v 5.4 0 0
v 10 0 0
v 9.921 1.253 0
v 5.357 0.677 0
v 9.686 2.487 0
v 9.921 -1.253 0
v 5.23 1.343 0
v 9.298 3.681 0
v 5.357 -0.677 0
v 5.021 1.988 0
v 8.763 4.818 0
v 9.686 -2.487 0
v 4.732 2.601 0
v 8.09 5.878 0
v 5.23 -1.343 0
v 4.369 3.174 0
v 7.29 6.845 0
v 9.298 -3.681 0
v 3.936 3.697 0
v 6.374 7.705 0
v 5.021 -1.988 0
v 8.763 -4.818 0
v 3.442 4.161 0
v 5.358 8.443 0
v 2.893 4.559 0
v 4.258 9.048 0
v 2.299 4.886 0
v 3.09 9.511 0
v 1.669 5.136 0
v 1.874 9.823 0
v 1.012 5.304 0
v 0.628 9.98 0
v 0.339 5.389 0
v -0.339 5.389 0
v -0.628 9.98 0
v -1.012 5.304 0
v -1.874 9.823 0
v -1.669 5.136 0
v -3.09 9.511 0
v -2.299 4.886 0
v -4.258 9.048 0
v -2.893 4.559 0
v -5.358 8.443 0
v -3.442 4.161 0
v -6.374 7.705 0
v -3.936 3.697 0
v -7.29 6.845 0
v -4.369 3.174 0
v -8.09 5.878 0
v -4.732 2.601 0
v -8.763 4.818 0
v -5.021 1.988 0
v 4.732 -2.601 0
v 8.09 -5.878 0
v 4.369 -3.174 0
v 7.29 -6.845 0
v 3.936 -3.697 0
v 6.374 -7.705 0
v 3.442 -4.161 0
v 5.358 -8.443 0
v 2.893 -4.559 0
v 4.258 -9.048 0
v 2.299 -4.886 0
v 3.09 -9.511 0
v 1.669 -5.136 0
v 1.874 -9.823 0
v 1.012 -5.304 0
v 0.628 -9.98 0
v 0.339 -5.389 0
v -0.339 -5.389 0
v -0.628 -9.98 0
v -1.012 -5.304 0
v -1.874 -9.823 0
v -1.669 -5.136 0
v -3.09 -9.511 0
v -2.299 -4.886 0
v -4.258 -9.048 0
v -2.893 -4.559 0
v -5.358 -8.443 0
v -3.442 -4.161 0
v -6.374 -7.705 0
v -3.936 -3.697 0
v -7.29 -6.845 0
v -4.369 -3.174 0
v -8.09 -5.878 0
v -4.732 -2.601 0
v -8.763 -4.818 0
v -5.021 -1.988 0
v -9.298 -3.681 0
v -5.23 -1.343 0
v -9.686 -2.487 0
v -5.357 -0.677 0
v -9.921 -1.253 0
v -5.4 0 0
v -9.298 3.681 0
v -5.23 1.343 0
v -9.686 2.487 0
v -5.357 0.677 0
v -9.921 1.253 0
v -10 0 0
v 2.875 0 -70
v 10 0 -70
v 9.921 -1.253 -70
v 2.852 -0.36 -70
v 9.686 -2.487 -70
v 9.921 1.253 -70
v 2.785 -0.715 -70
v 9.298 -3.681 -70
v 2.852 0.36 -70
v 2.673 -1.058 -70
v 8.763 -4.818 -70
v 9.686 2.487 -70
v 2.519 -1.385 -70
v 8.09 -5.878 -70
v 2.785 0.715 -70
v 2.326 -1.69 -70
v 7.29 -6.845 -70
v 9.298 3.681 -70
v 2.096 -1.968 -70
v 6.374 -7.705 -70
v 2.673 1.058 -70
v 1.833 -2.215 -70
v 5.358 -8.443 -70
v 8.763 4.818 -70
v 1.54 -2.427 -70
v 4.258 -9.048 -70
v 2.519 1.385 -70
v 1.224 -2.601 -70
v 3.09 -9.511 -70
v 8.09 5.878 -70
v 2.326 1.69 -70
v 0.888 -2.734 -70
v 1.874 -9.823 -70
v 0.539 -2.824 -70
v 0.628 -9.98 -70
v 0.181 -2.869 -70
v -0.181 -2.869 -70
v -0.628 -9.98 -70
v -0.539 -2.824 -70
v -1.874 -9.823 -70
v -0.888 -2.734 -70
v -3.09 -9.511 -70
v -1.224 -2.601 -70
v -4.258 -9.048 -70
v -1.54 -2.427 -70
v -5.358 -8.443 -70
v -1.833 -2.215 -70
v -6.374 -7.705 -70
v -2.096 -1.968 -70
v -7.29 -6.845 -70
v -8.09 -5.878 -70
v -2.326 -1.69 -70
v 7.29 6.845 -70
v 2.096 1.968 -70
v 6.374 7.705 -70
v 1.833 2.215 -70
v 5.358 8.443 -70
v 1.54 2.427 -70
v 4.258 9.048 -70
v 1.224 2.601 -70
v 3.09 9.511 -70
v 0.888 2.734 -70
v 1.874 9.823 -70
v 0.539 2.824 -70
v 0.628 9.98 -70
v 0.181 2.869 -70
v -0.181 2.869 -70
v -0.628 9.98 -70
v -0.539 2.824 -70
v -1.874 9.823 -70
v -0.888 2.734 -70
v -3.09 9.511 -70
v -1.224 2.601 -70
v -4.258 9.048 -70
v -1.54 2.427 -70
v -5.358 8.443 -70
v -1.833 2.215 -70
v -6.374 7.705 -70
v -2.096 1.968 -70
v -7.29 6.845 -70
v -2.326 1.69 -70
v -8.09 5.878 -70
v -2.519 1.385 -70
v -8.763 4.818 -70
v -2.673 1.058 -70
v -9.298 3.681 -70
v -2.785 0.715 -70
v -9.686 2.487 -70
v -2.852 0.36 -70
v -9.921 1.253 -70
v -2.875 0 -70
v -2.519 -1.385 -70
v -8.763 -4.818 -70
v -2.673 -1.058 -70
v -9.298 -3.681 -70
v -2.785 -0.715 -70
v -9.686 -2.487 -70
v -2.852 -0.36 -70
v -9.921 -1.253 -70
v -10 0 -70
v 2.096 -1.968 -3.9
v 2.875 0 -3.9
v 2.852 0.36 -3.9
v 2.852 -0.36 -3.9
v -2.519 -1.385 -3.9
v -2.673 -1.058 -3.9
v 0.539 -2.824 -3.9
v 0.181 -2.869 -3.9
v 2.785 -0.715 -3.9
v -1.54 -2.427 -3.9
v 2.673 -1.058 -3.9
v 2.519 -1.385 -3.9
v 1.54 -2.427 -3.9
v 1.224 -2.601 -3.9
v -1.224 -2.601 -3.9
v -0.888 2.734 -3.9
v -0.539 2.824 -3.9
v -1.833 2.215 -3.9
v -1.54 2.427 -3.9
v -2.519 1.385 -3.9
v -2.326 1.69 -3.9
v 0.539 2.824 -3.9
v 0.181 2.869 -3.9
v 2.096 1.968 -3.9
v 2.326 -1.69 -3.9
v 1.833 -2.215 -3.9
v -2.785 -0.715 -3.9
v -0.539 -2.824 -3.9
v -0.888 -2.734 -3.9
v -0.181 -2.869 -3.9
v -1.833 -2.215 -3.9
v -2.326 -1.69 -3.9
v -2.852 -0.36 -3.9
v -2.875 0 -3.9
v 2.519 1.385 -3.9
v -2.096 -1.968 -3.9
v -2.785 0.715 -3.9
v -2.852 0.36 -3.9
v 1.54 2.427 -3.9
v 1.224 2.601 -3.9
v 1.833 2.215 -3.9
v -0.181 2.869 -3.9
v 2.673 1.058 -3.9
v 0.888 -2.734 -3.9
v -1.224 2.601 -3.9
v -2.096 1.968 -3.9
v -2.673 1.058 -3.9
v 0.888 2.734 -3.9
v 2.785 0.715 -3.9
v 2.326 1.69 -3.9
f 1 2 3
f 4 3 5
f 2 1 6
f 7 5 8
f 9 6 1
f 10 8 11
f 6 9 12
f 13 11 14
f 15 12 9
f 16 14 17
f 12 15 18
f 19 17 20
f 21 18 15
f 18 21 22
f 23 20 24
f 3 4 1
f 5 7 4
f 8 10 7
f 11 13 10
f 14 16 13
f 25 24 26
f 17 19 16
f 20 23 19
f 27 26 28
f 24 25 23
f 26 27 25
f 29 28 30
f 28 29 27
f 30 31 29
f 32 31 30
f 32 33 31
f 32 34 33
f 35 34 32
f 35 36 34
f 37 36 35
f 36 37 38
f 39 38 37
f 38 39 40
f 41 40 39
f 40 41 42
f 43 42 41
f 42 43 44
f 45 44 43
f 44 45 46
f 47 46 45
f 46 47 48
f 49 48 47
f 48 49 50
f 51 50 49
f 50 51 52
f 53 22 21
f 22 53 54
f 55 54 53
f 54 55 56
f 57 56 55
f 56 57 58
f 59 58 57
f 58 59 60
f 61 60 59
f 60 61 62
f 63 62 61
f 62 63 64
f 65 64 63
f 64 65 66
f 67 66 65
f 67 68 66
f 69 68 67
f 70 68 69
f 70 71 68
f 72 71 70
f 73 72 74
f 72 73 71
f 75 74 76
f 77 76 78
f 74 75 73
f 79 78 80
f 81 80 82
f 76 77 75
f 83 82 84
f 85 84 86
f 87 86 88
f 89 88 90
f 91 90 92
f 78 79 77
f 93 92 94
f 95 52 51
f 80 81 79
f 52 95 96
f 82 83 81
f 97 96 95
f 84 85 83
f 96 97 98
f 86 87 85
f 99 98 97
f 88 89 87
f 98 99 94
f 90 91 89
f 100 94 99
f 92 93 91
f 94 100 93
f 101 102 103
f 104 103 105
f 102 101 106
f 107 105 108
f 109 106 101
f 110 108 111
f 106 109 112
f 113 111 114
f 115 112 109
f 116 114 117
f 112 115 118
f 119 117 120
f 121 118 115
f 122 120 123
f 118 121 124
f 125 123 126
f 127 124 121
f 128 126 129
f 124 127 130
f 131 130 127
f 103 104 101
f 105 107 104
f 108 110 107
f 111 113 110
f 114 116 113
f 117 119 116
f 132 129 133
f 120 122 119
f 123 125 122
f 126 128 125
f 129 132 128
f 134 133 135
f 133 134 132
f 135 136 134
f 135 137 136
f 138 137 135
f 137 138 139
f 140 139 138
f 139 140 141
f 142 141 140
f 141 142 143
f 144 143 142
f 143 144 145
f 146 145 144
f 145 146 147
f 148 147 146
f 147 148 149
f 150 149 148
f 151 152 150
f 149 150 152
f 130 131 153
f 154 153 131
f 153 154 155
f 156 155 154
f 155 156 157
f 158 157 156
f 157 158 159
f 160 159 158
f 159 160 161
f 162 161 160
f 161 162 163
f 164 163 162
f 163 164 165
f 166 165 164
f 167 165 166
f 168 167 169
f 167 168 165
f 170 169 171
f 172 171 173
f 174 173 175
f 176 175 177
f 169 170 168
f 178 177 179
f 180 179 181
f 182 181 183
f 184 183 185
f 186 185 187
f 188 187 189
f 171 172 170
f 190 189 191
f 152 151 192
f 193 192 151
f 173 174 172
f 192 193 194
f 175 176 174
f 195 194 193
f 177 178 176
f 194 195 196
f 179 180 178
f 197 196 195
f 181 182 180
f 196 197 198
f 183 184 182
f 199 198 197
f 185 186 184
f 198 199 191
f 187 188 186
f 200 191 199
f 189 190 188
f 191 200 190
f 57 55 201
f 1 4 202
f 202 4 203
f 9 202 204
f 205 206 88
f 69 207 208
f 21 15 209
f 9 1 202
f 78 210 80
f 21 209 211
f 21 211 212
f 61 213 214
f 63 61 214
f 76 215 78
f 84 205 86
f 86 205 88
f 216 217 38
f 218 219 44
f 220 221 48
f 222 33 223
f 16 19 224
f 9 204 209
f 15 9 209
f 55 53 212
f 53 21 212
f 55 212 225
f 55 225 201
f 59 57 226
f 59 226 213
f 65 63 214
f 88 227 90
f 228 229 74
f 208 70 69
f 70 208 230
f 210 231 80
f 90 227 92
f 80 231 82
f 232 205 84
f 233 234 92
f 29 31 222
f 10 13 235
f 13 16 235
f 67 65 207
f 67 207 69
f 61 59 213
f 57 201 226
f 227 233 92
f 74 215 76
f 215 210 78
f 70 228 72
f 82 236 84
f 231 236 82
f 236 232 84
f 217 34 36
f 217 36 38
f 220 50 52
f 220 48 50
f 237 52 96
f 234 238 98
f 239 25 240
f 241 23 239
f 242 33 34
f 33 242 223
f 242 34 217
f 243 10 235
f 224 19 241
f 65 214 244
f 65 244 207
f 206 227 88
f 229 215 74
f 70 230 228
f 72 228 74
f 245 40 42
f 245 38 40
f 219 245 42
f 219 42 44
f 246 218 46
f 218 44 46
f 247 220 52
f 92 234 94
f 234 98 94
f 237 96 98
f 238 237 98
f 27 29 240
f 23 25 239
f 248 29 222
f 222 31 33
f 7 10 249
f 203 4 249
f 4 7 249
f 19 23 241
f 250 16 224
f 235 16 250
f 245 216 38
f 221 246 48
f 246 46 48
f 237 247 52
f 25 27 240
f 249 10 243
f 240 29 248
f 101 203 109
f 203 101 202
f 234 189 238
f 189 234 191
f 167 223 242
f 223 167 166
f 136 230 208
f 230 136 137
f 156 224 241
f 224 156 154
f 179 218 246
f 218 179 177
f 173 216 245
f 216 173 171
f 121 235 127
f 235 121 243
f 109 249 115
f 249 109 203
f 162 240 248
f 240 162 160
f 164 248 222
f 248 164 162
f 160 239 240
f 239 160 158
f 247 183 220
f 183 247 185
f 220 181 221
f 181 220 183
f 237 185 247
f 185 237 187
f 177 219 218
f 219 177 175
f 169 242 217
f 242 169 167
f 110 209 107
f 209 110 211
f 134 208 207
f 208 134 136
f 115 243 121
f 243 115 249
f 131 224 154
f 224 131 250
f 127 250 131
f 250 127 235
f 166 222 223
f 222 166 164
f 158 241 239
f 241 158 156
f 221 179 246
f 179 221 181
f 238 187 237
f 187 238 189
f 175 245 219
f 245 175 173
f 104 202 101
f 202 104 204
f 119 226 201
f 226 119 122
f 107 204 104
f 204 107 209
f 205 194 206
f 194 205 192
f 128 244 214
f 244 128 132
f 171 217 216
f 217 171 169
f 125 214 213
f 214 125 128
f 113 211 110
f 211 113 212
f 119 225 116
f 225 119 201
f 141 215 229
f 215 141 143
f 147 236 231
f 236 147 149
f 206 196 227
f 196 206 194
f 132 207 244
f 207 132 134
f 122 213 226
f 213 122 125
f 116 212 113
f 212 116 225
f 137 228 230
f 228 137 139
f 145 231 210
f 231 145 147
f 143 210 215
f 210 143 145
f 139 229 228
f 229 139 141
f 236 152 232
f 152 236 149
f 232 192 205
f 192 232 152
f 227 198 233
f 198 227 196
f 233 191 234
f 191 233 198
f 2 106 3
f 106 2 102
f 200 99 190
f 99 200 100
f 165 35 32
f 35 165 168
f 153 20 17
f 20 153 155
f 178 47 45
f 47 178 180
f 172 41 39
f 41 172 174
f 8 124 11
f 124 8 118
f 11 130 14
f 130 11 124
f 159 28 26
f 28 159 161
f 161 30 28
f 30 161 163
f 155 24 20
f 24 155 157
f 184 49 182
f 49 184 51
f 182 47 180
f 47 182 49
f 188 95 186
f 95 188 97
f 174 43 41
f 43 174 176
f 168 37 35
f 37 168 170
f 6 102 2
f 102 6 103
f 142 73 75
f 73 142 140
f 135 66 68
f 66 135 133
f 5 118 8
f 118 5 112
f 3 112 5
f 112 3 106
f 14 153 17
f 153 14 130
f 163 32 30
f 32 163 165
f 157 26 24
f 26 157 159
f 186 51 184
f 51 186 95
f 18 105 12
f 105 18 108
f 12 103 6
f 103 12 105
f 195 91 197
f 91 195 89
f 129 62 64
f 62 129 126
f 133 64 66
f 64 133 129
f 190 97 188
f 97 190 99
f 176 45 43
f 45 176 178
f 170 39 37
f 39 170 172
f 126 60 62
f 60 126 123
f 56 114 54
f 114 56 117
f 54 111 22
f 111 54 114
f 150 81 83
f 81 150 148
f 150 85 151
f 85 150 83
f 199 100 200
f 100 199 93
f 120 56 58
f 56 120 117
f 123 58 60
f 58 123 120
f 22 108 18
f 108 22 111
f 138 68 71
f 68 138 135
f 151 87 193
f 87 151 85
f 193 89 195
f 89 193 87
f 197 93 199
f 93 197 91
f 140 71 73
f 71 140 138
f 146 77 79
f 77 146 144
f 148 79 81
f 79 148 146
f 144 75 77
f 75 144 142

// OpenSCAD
$fn = 50;


difference() {
	union() {
		translate(v = [0, 0, -70.0000000000]) {
			cylinder(h = 70, r = 10.0000000000);
		}
		cylinder(h = 0, r = 19.0000000000);
	}
	union() {
		translate(v = [0, 0, 0]) {
			rotate(a = [0, 0, 0]) {
				difference() {
					union() {
						#translate(v = [0, 0, -70.0000000000]) {
							cylinder(h = 70, r = 2.6000000000);
						}
						#translate(v = [0, 0, -3.9000000000]) {
							cylinder(h = 3.9000000000, r = 10.0000000000, r1 = 2.8750000000, r2 = 5.4000000000);
						}
						#translate(v = [0, 0, -70.0000000000]) {
							cylinder(h = 70, r = 2.8750000000);
						}
						#translate(v = [0, 0, -70.0000000000]) {
							cylinder(h = 70, r = 2.6000000000);
						}
					}
					union();
				}
			}
		}
	}
}
